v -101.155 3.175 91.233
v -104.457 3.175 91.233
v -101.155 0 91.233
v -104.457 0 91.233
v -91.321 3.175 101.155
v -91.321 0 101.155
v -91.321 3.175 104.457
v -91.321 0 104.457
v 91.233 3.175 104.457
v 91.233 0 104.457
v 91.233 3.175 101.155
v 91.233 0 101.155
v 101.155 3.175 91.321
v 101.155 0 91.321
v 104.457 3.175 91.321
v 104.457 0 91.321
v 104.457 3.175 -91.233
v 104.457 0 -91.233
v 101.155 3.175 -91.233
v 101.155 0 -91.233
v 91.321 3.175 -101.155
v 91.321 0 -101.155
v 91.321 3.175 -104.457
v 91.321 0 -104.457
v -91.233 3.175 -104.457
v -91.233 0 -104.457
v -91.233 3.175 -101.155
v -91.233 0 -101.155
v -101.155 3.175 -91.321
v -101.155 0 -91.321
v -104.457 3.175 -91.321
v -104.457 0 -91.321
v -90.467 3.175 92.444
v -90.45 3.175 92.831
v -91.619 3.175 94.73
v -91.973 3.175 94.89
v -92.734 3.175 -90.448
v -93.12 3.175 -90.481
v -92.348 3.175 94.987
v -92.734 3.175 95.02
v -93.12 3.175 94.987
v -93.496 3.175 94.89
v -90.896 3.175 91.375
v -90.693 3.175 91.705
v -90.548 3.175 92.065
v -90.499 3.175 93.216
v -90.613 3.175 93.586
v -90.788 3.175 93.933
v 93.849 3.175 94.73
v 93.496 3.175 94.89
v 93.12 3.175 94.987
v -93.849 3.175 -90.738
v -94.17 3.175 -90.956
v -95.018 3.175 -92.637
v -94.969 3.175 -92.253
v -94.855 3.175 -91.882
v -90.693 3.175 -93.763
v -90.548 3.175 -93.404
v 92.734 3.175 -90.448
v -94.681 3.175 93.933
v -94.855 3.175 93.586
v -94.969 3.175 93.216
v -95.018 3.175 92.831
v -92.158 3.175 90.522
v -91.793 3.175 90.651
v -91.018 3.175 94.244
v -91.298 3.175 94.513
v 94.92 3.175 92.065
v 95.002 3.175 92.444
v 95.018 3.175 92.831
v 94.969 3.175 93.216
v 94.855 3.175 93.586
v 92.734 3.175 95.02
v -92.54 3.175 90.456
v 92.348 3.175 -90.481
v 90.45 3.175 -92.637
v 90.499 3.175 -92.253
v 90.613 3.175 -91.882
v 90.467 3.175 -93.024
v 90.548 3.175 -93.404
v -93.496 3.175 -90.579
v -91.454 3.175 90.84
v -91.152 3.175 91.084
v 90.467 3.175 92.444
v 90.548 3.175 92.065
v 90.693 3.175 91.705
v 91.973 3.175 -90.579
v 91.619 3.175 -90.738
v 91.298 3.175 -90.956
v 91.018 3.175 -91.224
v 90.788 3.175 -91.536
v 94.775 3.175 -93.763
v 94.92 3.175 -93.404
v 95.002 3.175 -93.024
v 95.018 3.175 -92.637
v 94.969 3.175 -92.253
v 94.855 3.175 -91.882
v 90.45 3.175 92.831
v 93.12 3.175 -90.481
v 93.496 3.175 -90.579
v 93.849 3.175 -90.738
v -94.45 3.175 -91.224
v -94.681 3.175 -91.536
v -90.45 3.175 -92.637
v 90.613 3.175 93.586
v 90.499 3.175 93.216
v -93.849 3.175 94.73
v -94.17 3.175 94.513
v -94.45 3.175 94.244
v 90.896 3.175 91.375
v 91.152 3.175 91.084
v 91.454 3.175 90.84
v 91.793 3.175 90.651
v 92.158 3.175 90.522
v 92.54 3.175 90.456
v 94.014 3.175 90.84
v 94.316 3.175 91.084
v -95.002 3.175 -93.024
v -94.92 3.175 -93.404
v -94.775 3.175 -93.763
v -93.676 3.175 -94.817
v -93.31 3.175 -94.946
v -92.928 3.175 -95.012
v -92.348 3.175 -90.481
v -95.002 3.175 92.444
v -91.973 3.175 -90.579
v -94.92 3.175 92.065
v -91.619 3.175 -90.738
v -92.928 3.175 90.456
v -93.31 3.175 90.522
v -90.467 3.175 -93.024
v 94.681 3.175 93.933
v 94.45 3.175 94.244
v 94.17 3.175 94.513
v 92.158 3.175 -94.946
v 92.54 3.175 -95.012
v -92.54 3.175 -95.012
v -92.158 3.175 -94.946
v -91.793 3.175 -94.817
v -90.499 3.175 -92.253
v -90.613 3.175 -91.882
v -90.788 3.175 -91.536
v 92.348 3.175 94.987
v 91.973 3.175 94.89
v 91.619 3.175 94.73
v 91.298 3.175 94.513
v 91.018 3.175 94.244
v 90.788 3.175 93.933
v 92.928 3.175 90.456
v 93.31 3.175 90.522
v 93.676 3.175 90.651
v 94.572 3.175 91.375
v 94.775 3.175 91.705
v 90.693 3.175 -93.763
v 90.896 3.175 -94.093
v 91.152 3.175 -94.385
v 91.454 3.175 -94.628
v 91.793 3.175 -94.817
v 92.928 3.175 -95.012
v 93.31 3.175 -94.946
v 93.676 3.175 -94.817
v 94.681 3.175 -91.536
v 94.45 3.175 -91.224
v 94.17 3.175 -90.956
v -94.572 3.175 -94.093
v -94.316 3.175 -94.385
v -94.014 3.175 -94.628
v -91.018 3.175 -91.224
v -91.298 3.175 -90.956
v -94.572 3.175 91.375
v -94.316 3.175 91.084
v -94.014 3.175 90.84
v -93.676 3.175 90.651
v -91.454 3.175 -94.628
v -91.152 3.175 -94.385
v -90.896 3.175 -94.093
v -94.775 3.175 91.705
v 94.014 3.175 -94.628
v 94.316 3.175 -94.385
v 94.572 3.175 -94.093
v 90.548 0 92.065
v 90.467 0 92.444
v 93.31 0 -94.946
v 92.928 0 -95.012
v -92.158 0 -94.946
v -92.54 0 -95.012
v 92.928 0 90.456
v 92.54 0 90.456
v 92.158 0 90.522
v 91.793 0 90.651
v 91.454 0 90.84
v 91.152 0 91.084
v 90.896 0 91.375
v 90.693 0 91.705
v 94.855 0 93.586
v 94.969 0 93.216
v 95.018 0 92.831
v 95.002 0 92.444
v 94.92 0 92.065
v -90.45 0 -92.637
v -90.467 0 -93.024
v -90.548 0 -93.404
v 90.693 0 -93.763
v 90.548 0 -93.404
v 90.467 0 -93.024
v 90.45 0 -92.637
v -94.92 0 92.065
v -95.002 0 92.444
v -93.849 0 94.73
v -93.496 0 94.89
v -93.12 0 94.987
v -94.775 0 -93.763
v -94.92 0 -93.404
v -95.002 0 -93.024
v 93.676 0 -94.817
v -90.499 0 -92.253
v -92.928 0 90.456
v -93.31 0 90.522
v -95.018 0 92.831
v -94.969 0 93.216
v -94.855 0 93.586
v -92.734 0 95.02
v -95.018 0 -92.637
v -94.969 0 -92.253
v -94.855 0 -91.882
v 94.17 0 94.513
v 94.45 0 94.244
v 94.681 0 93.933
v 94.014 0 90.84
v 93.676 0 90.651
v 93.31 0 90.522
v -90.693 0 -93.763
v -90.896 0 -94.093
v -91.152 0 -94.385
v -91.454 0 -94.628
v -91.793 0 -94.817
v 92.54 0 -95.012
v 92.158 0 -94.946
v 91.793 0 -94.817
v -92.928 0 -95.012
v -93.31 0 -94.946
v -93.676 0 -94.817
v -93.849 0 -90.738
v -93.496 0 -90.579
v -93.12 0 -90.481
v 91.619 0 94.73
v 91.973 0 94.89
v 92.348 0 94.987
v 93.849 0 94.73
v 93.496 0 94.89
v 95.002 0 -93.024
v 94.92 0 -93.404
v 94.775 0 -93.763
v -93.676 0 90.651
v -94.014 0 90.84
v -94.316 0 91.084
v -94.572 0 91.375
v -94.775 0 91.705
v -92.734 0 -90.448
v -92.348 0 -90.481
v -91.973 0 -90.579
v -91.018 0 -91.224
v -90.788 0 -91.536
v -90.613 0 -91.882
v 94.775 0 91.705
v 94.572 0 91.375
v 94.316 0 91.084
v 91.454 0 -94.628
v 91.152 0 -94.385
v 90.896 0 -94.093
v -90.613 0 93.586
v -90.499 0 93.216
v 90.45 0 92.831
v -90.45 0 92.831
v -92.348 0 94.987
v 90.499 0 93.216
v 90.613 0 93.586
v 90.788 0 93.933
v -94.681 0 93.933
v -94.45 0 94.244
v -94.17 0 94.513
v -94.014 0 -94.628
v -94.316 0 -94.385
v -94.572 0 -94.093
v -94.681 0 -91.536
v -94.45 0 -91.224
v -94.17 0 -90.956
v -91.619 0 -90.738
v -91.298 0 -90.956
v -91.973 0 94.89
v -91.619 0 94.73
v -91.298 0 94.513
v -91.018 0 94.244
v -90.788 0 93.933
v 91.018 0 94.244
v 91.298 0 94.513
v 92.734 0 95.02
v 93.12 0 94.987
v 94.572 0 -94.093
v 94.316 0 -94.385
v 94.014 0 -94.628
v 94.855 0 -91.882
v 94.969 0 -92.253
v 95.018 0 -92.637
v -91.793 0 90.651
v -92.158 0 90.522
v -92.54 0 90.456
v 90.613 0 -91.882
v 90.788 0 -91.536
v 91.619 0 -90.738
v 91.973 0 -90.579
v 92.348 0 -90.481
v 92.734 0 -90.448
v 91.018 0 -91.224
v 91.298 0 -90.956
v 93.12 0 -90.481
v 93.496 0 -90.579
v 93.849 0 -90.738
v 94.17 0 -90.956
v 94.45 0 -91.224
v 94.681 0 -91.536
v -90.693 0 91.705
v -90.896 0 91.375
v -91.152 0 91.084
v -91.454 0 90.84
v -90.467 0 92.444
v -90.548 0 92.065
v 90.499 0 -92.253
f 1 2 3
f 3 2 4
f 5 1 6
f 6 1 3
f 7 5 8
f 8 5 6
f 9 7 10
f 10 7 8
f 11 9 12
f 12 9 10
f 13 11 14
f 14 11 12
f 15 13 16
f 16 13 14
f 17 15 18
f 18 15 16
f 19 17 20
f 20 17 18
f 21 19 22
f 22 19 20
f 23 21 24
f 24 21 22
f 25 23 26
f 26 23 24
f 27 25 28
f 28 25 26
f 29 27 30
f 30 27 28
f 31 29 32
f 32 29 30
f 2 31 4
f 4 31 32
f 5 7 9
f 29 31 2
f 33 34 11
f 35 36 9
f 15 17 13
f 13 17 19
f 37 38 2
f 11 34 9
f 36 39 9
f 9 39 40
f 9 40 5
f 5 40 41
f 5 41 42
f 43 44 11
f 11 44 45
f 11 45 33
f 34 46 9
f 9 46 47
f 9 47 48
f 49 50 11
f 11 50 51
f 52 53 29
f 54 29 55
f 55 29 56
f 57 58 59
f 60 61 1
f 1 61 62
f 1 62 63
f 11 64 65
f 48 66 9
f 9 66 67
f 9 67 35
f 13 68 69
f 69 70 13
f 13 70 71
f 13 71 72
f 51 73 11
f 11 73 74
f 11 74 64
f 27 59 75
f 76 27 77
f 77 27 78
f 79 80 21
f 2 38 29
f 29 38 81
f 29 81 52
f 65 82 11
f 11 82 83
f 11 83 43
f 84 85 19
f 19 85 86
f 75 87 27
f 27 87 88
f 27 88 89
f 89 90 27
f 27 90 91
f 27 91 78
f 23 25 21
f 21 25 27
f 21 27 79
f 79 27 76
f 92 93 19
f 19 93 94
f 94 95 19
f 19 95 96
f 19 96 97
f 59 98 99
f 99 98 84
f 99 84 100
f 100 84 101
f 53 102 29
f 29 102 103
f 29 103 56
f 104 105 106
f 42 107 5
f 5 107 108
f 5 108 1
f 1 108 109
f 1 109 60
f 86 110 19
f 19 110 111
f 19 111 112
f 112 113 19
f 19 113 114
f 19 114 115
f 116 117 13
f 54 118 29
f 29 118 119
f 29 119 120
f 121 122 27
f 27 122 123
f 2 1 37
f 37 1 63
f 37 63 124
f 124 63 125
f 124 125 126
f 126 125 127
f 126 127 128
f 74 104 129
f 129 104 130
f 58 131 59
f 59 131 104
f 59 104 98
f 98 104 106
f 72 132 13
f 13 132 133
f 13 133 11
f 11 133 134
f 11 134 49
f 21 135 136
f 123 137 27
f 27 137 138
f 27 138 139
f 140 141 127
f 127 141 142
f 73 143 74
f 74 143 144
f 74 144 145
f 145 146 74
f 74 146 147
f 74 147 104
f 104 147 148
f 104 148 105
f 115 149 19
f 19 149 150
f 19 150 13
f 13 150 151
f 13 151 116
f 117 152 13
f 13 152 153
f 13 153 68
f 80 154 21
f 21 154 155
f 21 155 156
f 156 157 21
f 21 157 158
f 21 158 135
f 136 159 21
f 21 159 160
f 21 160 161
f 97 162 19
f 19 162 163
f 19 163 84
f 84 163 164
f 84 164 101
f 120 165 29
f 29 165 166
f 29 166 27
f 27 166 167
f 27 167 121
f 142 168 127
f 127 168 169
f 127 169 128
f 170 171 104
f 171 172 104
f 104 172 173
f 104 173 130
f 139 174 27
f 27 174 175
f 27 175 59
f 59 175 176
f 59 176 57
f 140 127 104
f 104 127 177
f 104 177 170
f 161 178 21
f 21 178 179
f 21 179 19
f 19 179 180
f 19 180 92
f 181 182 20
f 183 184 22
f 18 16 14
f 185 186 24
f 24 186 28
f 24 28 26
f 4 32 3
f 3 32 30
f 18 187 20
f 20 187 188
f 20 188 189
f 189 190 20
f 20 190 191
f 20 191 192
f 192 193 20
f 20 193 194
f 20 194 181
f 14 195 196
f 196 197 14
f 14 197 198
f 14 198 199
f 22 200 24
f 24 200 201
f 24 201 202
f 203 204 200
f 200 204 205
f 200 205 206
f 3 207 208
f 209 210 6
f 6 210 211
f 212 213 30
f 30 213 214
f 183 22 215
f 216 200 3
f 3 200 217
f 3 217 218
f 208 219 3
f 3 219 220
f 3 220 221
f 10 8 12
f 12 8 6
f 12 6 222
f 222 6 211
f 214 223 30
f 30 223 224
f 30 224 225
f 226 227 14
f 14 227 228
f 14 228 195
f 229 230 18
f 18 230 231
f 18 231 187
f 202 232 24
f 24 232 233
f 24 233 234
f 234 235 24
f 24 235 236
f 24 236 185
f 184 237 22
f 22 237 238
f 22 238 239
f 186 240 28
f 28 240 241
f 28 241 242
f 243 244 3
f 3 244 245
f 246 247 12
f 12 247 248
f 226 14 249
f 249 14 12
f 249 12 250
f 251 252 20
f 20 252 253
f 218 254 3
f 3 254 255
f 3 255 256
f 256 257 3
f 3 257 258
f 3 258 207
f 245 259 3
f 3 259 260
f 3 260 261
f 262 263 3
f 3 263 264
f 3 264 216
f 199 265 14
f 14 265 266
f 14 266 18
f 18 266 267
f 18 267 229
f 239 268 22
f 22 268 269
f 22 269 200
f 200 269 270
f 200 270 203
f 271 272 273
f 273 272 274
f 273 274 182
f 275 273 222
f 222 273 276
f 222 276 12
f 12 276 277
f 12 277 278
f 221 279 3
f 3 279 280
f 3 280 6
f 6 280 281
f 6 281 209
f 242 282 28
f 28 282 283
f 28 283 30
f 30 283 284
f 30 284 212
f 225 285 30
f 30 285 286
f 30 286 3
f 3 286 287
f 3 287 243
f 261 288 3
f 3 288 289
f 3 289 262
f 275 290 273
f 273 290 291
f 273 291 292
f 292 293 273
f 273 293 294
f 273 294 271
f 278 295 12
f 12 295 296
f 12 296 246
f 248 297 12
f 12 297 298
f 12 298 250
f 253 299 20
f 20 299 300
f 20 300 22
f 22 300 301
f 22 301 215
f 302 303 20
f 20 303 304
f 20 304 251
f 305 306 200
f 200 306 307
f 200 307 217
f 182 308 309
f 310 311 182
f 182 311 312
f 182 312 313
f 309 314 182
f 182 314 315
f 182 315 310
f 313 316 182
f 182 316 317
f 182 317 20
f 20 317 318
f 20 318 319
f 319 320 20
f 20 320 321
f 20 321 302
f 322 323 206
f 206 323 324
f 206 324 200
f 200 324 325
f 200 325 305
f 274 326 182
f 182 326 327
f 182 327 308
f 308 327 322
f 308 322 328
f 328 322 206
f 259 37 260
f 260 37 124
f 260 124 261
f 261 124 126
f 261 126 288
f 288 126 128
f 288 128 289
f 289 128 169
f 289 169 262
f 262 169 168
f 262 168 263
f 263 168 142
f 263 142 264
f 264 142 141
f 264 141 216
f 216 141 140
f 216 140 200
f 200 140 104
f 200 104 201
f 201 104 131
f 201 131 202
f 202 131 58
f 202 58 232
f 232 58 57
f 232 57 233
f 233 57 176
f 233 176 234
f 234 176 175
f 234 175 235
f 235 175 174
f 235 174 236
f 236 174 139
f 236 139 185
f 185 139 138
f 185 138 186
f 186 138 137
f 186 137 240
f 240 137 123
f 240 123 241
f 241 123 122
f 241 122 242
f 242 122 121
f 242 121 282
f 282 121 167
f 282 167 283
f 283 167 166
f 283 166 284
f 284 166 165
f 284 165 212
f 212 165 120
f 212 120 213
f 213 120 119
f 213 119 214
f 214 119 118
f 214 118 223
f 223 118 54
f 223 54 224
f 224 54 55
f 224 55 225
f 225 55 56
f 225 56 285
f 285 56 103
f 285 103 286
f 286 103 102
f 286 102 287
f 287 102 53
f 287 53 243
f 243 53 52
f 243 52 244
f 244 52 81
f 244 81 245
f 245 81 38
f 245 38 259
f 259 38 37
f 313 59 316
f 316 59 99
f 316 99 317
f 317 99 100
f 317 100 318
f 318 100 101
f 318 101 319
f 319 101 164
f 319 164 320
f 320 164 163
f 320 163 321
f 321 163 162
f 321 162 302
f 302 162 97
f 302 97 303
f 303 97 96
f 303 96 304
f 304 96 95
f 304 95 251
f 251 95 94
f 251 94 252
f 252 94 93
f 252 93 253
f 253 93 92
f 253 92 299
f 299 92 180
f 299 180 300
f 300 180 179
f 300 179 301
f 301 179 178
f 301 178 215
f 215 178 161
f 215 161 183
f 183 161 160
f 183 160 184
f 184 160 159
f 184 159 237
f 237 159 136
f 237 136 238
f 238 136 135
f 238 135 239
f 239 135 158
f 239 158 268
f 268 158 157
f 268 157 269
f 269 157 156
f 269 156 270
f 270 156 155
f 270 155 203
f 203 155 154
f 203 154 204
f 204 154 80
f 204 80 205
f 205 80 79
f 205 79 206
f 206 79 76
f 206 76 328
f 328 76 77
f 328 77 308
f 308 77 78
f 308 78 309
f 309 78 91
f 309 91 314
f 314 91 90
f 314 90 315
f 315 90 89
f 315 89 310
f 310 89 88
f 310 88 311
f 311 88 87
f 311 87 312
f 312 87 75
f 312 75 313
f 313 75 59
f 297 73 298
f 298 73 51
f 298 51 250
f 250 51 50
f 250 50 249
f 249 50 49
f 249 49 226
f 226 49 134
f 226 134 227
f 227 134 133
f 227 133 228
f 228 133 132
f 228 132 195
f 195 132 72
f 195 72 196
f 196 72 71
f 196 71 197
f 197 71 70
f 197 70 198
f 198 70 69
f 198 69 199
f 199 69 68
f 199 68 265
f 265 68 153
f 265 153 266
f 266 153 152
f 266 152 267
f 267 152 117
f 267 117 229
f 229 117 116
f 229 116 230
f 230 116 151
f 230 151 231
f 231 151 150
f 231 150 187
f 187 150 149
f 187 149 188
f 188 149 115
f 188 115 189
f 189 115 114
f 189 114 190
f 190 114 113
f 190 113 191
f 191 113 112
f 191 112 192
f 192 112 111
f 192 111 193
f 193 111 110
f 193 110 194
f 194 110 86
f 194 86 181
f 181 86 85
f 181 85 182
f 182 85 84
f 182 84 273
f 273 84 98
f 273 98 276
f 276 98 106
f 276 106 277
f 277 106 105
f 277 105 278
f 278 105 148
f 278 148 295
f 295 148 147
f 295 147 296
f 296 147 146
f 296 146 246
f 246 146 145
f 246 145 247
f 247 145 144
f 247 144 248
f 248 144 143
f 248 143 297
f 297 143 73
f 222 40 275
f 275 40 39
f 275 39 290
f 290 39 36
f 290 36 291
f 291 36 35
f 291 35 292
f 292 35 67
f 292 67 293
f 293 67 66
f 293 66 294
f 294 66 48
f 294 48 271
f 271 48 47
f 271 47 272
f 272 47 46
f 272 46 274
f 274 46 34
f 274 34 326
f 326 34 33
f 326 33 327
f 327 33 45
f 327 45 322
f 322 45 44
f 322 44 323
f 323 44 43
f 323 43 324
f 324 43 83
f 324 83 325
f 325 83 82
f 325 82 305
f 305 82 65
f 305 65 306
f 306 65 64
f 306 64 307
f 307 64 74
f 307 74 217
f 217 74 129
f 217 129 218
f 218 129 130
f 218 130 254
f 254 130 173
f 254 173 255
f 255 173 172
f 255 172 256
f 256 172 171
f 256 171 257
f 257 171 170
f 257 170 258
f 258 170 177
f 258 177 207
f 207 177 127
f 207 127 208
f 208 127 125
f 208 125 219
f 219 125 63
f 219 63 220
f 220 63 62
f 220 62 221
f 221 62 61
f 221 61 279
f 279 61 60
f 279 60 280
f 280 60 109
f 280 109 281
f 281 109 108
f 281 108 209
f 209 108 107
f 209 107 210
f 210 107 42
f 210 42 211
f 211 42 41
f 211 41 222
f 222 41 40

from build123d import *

# Parameters (mm, degrees)
BOSS_EXTRUDE1_DEPTH = 3.175
CUT_EXTRUDE1_REACH  = 5.175
SKETCH3_R           = 2.286


with BuildPart() as part:
    # Sketch1 → Boss-Extrude1 (new body)
    with BuildSketch(Plane(origin=(0, 0, 0), x_dir=(1, 0, 0), z_dir=(0, 1, 0))):
        Polygon((-91.233267746, 104.4575), (-91.233267746, 101.1555), (-101.1555, 91.321365209), (-104.4575, 91.321365209), (-104.4575, -91.233267746), (-101.1555, -91.233267746), (-91.321365209, -101.1555), (-91.321365209, -104.4575), (91.233267746, -104.4575), (91.233267746, -101.1555), (101.1555, -91.321365209), (104.4575, -91.321365209), (104.4575, 91.233267746), (101.1555, 91.233267746), (91.321365209, 101.1555), (91.321365209, 104.4575), align=None)
    extrude(amount=BOSS_EXTRUDE1_DEPTH)

    # Sketch3 → Cut-Extrude1 (cut, up to next)
    with BuildSketch(Plane(origin=(0, 3.175, 0), x_dir=(1, 0, 0), z_dir=(0, 1, 0)), mode=Mode.PRIVATE) as cut_extrude1_sk1:
        with Locations((-92.73413, 92.73413)):
            Circle(SKETCH3_R)
    cut_extrude1_tool1 = extrude(cut_extrude1_sk1.sketch, amount=-CUT_EXTRUDE1_REACH, mode=Mode.PRIVATE) & part.part
    add(cut_extrude1_tool1.solids().sort_by_distance((-92.73413, 3.175, -92.73413))[0], mode=Mode.SUBTRACT)
    # Sketch3 → Cut-Extrude1 (cut, up to next)
    with BuildSketch(Plane(origin=(0, 3.175, 0), x_dir=(1, 0, 0), z_dir=(0, 1, 0)), mode=Mode.PRIVATE) as cut_extrude1_sk2:
        with Locations((92.73413, 92.73413)):
            Circle(SKETCH3_R)
    cut_extrude1_tool2 = extrude(cut_extrude1_sk2.sketch, amount=-CUT_EXTRUDE1_REACH, mode=Mode.PRIVATE) & part.part
    add(cut_extrude1_tool2.solids().sort_by_distance((92.73413, 3.175, -92.73413))[0], mode=Mode.SUBTRACT)
    # Sketch3 → Cut-Extrude1 (cut, up to next)
    with BuildSketch(Plane(origin=(0, 3.175, 0), x_dir=(1, 0, 0), z_dir=(0, 1, 0)), mode=Mode.PRIVATE) as cut_extrude1_sk3:
        with Locations((92.73413, -92.73413)):
            Circle(SKETCH3_R)
    cut_extrude1_tool3 = extrude(cut_extrude1_sk3.sketch, amount=-CUT_EXTRUDE1_REACH, mode=Mode.PRIVATE) & part.part
    add(cut_extrude1_tool3.solids().sort_by_distance((92.73413, 3.175, 92.73413))[0], mode=Mode.SUBTRACT)
    # Sketch3 → Cut-Extrude1 (cut, up to next)
    with BuildSketch(Plane(origin=(0, 3.175, 0), x_dir=(1, 0, 0), z_dir=(0, 1, 0)), mode=Mode.PRIVATE) as cut_extrude1_sk4:
        with Locations((-92.73413, -92.73413)):
            Circle(SKETCH3_R)
    cut_extrude1_tool4 = extrude(cut_extrude1_sk4.sketch, amount=-CUT_EXTRUDE1_REACH, mode=Mode.PRIVATE) & part.part
    add(cut_extrude1_tool4.solids().sort_by_distance((-92.73413, 3.175, 92.73413))[0], mode=Mode.SUBTRACT)


solid = part.part
